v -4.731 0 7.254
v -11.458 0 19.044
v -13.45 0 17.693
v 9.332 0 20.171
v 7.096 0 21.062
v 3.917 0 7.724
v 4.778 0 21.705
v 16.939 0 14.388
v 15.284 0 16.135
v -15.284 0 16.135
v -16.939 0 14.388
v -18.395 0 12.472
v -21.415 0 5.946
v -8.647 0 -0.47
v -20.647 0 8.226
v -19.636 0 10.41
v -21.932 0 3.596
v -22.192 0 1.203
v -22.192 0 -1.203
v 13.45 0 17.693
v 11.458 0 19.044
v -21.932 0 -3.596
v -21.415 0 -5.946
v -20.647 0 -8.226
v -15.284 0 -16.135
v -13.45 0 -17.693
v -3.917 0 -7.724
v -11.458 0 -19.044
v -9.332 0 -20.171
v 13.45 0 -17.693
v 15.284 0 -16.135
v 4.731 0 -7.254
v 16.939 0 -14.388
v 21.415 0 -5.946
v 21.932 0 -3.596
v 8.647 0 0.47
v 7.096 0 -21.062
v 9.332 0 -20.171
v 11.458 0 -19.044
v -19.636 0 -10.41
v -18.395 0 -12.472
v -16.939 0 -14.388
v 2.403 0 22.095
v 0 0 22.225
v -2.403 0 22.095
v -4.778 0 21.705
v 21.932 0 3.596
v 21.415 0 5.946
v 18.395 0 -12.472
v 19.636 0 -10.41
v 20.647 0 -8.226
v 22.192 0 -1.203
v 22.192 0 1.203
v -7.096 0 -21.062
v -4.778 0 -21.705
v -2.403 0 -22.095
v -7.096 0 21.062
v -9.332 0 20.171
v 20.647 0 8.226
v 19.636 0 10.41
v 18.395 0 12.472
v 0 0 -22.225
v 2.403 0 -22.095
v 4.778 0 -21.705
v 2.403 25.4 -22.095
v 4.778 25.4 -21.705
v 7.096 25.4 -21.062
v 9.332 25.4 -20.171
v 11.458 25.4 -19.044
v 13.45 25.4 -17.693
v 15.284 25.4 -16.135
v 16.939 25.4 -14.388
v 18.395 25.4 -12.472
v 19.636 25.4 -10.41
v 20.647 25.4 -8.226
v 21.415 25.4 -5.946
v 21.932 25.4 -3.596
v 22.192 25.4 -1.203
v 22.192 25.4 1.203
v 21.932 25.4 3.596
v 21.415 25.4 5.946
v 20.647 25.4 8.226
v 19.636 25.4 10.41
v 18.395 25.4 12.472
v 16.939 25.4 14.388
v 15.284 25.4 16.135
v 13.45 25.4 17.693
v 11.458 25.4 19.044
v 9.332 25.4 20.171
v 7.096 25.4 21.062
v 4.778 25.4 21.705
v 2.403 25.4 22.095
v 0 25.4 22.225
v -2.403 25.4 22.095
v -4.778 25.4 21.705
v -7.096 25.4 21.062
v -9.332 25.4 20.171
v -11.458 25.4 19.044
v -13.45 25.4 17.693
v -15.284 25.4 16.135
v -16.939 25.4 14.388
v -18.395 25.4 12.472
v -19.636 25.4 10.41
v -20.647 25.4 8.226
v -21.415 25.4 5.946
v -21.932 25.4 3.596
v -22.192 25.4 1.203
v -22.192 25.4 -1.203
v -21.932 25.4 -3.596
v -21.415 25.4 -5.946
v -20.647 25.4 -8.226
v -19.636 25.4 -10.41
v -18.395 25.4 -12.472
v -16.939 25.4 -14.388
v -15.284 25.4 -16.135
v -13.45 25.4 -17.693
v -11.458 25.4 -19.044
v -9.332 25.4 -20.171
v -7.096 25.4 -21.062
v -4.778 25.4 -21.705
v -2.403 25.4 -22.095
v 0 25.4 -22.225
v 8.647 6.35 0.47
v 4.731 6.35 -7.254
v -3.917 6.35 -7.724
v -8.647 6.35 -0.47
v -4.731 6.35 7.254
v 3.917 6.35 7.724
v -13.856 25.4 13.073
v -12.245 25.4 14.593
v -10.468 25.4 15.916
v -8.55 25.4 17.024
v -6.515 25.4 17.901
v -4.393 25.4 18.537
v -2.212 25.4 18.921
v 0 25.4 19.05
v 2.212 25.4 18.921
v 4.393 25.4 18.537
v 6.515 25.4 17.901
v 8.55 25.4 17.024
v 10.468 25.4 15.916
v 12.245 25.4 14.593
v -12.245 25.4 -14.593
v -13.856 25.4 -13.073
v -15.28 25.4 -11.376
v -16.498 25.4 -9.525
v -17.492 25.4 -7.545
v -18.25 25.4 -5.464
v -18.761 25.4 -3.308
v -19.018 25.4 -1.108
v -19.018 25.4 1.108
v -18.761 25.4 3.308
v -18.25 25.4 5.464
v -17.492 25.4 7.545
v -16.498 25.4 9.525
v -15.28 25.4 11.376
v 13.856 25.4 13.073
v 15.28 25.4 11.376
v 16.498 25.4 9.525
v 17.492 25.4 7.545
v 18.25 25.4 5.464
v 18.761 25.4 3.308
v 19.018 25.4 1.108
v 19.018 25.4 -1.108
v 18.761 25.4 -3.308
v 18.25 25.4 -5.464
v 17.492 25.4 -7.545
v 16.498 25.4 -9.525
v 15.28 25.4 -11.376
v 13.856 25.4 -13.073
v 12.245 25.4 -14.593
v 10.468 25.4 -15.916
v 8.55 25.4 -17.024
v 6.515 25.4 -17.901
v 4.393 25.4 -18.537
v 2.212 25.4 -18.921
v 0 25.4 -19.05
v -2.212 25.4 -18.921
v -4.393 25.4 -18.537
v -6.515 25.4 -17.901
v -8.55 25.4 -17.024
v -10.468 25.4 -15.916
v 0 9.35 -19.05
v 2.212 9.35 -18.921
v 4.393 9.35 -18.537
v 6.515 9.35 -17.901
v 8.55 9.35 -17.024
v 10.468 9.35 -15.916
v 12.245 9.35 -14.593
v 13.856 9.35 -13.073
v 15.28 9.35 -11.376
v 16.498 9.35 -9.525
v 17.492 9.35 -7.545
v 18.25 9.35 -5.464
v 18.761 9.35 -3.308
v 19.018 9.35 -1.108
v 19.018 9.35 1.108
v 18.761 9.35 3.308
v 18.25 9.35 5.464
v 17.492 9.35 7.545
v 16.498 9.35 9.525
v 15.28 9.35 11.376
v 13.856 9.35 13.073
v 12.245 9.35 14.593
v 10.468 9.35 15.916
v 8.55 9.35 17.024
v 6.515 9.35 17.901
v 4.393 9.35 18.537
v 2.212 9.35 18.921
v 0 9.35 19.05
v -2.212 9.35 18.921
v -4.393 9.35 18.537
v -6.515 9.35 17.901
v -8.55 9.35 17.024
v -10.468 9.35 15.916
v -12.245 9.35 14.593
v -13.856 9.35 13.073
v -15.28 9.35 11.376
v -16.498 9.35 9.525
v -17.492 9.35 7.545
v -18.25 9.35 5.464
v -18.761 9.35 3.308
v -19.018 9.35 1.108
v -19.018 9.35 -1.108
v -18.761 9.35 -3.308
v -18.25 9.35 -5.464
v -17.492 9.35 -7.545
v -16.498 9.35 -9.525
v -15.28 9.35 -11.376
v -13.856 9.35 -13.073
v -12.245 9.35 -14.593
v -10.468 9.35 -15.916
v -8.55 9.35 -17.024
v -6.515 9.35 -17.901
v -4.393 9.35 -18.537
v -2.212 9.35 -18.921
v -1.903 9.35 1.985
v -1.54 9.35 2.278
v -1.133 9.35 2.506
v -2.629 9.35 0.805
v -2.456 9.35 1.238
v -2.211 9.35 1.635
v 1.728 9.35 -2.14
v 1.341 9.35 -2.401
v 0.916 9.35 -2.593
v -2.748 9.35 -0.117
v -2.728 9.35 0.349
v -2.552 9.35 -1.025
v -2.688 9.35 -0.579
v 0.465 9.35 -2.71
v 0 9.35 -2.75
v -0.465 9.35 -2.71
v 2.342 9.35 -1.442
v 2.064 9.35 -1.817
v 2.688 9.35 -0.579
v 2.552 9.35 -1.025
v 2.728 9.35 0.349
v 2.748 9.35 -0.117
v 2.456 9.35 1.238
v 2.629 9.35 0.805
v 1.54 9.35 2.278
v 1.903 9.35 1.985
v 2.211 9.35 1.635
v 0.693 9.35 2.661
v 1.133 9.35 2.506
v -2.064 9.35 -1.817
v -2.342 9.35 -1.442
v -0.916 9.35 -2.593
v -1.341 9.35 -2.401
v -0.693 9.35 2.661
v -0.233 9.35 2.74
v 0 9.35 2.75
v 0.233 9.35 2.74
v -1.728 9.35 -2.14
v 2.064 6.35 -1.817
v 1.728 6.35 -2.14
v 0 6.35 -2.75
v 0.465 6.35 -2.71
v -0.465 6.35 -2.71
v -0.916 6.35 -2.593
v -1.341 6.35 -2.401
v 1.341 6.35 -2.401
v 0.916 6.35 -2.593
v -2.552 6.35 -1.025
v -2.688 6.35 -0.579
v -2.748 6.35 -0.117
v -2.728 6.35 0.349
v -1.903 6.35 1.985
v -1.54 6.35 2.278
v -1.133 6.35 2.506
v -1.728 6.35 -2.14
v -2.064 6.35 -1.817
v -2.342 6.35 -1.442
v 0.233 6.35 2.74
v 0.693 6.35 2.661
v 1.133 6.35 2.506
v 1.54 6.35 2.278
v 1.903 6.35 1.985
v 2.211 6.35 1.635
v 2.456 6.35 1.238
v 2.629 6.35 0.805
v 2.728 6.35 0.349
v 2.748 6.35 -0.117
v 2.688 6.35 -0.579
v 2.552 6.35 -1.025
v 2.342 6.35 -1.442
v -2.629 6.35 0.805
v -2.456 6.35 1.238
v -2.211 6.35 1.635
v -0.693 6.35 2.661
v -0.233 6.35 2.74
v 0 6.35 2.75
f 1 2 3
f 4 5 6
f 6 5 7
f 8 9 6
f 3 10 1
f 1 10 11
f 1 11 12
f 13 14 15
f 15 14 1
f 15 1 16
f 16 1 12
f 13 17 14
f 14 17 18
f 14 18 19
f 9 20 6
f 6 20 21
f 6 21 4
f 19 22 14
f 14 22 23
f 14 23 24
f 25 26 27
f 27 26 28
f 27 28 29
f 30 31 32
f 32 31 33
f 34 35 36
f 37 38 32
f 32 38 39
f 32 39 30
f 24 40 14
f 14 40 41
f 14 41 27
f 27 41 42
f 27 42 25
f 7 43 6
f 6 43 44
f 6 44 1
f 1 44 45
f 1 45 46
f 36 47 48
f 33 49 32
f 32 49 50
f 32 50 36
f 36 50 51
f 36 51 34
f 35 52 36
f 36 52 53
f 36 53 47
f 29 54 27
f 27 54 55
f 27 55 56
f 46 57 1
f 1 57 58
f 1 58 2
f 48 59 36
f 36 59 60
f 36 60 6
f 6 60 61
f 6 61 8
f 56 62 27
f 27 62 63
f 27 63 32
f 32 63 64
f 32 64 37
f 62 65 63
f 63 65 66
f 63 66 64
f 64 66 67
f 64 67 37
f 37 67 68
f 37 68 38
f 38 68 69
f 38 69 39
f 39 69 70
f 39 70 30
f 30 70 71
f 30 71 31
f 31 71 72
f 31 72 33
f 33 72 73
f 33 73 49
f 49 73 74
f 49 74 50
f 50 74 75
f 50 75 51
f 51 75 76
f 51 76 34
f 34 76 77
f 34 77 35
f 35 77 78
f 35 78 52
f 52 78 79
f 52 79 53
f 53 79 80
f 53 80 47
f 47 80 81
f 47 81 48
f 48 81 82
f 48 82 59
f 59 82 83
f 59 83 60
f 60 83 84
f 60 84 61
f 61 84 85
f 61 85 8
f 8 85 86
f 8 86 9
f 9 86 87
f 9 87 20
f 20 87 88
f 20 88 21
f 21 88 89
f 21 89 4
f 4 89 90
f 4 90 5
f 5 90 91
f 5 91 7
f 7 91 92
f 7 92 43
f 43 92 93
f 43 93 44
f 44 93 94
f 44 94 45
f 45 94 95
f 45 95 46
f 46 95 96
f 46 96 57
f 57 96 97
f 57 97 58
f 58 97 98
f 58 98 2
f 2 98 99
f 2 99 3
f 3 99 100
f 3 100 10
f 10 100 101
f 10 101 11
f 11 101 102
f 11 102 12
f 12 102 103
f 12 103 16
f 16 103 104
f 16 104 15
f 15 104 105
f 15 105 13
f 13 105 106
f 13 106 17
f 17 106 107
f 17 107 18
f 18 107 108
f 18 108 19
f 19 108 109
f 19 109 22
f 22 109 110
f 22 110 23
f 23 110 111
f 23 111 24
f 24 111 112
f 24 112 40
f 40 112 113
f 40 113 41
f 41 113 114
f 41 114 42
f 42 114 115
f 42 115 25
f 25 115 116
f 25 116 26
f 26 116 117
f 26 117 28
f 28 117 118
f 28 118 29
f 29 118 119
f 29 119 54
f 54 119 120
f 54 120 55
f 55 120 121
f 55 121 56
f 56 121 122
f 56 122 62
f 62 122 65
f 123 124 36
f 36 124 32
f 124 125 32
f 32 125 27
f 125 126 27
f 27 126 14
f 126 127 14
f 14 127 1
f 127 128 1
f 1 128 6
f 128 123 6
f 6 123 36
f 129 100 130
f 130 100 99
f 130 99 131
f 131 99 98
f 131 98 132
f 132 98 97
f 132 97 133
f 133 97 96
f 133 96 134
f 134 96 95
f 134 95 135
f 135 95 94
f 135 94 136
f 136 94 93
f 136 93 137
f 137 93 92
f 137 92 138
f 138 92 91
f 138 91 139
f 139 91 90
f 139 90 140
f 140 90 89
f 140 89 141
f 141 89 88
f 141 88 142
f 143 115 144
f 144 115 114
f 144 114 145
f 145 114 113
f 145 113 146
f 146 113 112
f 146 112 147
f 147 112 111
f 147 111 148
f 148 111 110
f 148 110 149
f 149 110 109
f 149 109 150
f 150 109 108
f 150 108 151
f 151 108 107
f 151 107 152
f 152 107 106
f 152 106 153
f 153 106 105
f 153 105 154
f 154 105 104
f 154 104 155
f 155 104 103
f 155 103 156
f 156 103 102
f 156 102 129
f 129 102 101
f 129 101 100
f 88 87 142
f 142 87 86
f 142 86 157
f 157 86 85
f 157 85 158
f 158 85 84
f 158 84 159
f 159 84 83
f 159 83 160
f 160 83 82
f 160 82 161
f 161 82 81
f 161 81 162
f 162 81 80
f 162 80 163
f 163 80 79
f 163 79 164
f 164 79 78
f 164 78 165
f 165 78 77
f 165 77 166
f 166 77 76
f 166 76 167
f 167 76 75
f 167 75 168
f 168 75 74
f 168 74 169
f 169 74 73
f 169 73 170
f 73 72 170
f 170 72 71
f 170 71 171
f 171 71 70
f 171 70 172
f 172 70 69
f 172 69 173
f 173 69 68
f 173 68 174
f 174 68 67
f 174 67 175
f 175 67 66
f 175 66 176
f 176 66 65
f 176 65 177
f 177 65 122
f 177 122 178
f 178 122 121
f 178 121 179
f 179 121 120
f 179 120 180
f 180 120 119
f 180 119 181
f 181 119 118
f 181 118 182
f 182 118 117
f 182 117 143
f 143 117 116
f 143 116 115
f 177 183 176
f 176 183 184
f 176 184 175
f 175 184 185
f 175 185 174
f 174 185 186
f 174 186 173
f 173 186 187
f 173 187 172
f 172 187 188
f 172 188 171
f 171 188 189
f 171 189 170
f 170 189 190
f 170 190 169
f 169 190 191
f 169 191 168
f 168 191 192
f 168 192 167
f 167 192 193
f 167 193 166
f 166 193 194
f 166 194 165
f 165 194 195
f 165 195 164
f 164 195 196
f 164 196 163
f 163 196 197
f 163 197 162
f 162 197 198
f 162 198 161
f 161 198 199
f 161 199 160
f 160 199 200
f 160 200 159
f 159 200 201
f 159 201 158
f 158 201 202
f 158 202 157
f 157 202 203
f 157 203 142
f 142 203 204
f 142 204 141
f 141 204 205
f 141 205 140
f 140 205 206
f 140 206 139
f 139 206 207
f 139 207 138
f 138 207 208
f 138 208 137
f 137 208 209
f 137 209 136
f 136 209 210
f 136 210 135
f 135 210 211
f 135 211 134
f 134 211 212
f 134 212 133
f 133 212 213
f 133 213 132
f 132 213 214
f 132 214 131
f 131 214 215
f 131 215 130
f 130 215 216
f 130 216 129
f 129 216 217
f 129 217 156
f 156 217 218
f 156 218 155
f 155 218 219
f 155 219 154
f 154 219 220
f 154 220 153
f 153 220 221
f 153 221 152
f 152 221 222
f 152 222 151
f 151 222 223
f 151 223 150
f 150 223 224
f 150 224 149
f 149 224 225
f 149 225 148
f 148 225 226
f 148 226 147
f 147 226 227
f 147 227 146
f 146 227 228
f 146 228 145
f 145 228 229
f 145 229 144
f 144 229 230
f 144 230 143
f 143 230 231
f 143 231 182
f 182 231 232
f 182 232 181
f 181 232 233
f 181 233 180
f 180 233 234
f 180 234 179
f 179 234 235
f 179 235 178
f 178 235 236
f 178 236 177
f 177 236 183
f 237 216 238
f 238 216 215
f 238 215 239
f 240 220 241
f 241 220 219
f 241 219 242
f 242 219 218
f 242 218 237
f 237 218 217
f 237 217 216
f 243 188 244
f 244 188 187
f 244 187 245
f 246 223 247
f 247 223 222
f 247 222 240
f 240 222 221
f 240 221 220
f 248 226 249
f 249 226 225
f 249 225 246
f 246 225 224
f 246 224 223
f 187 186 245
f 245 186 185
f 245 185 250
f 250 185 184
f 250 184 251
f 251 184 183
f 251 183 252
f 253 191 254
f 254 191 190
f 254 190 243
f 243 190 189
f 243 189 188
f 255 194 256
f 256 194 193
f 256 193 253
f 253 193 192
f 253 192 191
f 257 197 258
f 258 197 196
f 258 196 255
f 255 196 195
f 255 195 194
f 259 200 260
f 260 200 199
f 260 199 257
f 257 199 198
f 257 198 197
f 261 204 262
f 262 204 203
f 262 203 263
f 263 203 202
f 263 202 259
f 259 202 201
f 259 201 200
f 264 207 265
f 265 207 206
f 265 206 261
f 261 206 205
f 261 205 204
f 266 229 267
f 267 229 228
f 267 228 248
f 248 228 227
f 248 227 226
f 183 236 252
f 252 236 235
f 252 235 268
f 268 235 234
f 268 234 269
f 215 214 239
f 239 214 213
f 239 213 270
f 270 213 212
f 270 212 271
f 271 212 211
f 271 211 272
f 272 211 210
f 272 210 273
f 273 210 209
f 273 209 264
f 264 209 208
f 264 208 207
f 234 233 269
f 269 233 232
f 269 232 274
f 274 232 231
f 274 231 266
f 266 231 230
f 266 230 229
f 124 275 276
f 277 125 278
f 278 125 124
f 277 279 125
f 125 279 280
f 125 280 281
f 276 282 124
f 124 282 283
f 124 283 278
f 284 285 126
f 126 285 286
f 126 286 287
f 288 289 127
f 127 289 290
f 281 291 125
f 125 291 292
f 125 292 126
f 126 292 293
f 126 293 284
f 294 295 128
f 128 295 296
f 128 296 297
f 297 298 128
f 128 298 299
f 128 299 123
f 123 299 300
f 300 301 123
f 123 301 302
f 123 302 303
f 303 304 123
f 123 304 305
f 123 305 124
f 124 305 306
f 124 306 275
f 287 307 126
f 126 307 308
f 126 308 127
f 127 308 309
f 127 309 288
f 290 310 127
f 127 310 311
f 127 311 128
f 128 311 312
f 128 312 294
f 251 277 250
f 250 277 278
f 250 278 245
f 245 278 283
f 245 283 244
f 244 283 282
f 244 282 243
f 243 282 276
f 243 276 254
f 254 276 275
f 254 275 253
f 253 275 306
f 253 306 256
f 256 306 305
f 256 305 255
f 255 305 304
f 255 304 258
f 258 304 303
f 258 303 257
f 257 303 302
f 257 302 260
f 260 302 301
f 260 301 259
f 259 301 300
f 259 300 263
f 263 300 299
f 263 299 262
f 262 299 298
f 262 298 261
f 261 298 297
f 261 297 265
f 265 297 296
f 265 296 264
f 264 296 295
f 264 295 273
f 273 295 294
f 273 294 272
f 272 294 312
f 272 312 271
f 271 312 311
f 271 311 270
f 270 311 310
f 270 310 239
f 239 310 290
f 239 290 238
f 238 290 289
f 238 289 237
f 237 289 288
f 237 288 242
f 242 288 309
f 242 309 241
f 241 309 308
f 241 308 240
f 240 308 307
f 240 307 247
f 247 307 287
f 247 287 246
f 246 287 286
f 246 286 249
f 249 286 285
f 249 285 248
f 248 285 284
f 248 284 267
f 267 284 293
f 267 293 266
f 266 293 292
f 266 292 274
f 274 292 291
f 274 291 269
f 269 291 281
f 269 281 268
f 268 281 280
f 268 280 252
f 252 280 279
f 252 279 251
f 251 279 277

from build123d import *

# Parameters (mm, degrees)
SKETCH1_R           = 22.225
BOSS_EXTRUDE1_DEPTH = 6.35
SKETCH2_R           = 22.225
SKETCH2_R_2         = 19.05
BOSS_EXTRUDE2_DEPTH = 19.05
SKETCH3_R           = 19.05
SKETCH3_R_2         = 2.75
BOSS_EXTRUDE3_DEPTH = 3


with BuildPart() as part:
    # Sketch1 → Boss-Extrude1 (new body)
    with BuildSketch(Plane(origin=(0, 0, 0), x_dir=(1, 0, 0), z_dir=(0, 1, 0))):
        Circle(SKETCH1_R)
        Polygon((4.730817752, 7.253920553), (-3.9166706, 7.723968631), (-8.647488352, 0.470048077), (-4.730817752, -7.253920553), (3.9166706, -7.723968631), (8.647488352, -0.470048077), align=None, mode=Mode.SUBTRACT)
    extrude(amount=BOSS_EXTRUDE1_DEPTH)

    # Sketch2 → Boss-Extrude2 (add)
    with BuildSketch(Plane(origin=(0, 6.35, 0), x_dir=(1, 0, 0), z_dir=(0, 1, 0))):
        Circle(SKETCH2_R)
        Circle(SKETCH2_R_2, mode=Mode.SUBTRACT)
    extrude(amount=BOSS_EXTRUDE2_DEPTH)

    # Sketch3 → Boss-Extrude3 (add)
    with BuildSketch(Plane(origin=(0, 6.35, 0), x_dir=(1, 0, 0), z_dir=(0, 1, 0))):
        Circle(SKETCH3_R)
        Circle(SKETCH3_R_2, mode=Mode.SUBTRACT)
    extrude(amount=BOSS_EXTRUDE3_DEPTH)


solid = part.part
